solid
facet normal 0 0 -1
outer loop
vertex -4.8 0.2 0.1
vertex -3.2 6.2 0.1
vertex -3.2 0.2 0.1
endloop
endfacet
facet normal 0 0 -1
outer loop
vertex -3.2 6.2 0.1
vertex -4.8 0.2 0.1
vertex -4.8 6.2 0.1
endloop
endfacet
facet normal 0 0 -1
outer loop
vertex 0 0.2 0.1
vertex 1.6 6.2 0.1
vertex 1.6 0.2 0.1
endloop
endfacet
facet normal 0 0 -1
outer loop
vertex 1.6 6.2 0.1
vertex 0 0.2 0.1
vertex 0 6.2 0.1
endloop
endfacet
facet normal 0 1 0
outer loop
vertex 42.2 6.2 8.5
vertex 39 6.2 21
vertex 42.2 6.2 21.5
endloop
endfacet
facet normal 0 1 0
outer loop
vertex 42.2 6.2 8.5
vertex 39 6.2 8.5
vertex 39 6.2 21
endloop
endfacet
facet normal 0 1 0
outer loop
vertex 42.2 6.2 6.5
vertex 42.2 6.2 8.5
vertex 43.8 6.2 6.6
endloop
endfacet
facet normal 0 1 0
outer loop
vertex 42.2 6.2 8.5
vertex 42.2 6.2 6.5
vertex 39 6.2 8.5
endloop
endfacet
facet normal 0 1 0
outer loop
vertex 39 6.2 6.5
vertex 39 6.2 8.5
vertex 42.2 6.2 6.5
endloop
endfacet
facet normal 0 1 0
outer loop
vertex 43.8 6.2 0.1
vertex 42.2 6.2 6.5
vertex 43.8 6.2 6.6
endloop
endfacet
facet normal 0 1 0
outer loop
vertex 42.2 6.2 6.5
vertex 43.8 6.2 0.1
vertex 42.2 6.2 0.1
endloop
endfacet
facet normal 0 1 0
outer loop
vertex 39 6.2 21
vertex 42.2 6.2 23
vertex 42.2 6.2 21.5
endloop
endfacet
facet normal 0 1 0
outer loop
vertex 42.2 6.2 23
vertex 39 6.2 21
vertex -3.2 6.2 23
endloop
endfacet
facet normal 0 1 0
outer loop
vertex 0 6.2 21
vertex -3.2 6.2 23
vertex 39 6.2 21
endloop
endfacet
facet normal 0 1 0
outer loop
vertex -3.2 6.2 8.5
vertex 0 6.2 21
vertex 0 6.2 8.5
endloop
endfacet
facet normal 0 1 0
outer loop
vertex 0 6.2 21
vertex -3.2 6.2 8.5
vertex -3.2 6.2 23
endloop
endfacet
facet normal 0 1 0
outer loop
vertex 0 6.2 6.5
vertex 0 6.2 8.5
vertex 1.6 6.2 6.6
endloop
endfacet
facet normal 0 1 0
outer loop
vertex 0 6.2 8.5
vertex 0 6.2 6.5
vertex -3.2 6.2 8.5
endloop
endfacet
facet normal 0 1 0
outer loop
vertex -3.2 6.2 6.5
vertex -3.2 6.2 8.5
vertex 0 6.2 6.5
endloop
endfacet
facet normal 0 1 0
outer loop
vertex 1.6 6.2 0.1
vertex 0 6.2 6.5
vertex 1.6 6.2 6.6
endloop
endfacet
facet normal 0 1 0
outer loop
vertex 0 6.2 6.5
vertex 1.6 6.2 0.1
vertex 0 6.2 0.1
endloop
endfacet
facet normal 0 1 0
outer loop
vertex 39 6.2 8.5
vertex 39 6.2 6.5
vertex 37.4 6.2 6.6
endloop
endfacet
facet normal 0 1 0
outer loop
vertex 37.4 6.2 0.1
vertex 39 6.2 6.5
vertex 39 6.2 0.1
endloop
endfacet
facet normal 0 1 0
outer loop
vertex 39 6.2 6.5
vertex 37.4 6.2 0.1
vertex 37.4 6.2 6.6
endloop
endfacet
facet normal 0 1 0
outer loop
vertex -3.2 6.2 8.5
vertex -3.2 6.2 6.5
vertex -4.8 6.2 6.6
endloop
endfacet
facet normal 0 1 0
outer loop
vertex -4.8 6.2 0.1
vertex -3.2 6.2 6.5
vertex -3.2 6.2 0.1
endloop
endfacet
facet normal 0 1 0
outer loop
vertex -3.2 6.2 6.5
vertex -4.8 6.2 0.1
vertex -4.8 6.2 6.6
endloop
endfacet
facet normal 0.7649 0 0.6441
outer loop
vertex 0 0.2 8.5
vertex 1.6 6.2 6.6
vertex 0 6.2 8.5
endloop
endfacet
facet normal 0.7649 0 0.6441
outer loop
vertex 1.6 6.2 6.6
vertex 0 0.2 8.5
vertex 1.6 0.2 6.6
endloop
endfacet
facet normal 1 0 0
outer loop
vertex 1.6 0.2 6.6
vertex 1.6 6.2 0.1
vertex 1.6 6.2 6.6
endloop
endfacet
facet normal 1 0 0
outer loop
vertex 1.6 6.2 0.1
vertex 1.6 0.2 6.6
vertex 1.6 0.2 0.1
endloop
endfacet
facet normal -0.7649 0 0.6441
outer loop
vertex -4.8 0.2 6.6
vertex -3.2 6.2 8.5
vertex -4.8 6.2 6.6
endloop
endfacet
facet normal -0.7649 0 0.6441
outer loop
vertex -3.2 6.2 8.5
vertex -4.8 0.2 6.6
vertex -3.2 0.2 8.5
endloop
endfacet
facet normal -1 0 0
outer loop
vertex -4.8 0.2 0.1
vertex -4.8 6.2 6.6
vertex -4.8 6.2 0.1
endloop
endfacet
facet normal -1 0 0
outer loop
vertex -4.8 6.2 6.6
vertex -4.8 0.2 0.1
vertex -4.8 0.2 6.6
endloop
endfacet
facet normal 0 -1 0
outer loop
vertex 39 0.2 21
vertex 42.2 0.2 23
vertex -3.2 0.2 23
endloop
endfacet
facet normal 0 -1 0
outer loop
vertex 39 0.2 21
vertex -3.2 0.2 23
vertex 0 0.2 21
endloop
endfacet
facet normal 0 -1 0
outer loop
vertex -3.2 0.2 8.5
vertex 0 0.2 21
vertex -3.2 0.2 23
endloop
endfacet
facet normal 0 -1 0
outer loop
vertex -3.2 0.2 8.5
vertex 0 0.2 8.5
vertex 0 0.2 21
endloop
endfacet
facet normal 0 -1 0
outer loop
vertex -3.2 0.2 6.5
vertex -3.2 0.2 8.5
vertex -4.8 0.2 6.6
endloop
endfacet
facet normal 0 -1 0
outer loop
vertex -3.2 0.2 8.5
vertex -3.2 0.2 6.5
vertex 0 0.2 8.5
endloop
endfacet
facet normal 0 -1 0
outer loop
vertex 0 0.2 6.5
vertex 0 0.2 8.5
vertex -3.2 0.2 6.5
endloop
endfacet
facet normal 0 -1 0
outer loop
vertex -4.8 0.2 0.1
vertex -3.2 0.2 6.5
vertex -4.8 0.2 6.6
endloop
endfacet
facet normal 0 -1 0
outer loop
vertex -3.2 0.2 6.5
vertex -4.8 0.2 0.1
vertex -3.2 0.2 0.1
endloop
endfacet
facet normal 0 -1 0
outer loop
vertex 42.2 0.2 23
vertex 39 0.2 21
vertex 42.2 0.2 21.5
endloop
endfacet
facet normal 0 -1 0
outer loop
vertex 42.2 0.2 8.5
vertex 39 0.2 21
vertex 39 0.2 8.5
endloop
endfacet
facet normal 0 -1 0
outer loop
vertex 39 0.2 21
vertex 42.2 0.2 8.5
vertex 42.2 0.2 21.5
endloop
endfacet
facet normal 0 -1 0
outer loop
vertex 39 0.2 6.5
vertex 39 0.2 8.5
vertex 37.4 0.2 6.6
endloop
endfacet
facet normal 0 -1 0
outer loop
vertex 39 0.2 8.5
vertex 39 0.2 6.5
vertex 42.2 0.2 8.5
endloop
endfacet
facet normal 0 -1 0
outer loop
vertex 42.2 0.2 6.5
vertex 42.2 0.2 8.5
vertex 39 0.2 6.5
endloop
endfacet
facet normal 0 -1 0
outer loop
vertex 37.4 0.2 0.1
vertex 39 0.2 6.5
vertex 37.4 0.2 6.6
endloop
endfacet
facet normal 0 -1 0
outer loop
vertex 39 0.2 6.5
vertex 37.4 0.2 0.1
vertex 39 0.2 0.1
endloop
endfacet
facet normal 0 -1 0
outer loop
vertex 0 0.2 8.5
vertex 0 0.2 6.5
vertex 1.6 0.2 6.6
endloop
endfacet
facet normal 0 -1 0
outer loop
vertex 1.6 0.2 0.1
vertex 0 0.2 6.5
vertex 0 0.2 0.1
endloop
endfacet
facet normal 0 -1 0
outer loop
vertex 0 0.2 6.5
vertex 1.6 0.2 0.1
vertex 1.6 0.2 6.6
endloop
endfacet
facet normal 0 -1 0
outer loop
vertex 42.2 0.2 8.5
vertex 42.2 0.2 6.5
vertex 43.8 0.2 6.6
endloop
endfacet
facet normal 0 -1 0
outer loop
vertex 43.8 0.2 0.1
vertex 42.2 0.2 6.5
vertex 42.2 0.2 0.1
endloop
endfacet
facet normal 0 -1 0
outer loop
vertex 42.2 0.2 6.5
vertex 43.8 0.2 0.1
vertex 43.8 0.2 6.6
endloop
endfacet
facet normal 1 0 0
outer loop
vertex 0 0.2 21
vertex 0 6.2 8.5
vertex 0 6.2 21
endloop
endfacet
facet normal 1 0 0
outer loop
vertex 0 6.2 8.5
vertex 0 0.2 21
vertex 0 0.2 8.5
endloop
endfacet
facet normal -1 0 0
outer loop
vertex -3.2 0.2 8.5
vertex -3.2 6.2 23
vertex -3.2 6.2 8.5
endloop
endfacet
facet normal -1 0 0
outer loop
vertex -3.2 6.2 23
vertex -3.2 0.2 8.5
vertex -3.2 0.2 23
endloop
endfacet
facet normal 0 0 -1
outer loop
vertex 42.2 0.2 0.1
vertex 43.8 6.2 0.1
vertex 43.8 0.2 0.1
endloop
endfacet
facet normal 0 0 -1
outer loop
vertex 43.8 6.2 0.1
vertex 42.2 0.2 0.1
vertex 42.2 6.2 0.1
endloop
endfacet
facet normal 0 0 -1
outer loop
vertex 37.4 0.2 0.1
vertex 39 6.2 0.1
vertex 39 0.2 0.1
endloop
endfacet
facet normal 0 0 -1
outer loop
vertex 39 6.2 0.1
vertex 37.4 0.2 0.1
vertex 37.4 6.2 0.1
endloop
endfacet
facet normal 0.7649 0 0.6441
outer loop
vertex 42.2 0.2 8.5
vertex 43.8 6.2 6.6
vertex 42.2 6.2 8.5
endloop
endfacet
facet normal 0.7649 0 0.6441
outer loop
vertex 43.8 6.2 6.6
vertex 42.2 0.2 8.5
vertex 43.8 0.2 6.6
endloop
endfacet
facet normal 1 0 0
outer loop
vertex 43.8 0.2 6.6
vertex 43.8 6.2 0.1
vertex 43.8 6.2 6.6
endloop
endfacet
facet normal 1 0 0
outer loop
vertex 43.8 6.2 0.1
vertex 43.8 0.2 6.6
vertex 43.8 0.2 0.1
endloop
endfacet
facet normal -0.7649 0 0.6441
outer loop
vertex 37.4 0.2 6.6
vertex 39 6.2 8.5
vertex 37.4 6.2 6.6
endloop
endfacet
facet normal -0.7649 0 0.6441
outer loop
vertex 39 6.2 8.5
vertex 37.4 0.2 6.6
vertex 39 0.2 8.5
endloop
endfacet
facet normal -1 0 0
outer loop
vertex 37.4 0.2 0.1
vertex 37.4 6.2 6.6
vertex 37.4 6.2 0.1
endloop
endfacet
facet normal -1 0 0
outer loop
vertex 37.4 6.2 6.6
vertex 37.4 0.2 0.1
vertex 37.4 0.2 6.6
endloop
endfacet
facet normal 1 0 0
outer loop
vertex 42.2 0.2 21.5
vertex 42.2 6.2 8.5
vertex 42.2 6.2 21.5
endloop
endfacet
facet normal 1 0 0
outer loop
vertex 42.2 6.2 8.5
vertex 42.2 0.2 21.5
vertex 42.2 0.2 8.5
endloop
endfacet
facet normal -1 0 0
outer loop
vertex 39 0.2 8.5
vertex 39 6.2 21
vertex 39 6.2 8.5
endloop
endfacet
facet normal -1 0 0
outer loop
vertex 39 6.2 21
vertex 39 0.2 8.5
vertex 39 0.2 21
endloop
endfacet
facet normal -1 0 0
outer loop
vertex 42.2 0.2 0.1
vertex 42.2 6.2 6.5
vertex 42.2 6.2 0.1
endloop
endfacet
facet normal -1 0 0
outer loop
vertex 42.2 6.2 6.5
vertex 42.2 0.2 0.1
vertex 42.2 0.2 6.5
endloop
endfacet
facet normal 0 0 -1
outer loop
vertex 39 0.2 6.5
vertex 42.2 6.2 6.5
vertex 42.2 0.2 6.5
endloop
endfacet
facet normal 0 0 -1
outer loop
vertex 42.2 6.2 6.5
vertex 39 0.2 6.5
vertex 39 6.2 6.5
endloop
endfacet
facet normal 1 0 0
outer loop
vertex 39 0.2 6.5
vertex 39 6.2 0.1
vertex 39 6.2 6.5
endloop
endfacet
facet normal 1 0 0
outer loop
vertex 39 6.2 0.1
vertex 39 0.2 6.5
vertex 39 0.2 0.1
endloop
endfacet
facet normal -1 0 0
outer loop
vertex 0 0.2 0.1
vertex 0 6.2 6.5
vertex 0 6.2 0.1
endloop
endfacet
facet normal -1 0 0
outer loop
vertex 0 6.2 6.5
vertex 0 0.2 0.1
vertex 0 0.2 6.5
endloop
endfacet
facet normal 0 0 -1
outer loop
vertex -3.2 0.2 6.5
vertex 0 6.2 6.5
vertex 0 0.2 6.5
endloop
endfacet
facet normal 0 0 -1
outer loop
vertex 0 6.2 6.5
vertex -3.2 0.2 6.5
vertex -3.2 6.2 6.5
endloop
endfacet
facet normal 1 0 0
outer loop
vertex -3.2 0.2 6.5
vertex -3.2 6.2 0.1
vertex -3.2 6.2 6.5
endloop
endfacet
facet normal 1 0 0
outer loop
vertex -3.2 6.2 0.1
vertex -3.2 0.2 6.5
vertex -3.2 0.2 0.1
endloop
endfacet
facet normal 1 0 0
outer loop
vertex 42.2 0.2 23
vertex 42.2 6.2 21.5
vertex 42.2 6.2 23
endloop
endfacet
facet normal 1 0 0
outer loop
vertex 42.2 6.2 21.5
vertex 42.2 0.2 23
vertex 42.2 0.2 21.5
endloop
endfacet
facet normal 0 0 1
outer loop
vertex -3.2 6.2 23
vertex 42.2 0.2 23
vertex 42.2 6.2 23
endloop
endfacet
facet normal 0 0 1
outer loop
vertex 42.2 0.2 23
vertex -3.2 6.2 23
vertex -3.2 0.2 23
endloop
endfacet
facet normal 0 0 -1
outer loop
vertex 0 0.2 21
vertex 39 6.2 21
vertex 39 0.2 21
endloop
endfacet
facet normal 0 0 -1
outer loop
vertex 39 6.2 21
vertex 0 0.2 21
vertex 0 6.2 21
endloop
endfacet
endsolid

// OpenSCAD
module rail_end() {
   cube([3.2,12,6.5]); //rail
}

module pin() {
  rotate([0,90,0])
  cylinder(d=2, h=7, $fn=24);
}

module chassis() {
translate([39,0,0]) //left_rail
  rail_end(); 
translate([-3.2,0,0]) //right_rail
  rail_end(); 
}

module foot() {
hull() {
  translate([-4.8,.2,0.1])
    cube([6.4,6,6.5]);

  translate([-3.2,.2,6.5])
    cube([3.2,6,2]);
  }
//post
translate([-3.2,.2,8.5])
    cube([3.2,6,13]);
}

// Top support
translate([-3.2,.2,21])
    cube([6.4 + 39,6,2]);


module feet() {
 //Feet
foot();

translate([39+3.2,0,0])
    foot();   
}

difference() {
  feet();
chassis();
}
